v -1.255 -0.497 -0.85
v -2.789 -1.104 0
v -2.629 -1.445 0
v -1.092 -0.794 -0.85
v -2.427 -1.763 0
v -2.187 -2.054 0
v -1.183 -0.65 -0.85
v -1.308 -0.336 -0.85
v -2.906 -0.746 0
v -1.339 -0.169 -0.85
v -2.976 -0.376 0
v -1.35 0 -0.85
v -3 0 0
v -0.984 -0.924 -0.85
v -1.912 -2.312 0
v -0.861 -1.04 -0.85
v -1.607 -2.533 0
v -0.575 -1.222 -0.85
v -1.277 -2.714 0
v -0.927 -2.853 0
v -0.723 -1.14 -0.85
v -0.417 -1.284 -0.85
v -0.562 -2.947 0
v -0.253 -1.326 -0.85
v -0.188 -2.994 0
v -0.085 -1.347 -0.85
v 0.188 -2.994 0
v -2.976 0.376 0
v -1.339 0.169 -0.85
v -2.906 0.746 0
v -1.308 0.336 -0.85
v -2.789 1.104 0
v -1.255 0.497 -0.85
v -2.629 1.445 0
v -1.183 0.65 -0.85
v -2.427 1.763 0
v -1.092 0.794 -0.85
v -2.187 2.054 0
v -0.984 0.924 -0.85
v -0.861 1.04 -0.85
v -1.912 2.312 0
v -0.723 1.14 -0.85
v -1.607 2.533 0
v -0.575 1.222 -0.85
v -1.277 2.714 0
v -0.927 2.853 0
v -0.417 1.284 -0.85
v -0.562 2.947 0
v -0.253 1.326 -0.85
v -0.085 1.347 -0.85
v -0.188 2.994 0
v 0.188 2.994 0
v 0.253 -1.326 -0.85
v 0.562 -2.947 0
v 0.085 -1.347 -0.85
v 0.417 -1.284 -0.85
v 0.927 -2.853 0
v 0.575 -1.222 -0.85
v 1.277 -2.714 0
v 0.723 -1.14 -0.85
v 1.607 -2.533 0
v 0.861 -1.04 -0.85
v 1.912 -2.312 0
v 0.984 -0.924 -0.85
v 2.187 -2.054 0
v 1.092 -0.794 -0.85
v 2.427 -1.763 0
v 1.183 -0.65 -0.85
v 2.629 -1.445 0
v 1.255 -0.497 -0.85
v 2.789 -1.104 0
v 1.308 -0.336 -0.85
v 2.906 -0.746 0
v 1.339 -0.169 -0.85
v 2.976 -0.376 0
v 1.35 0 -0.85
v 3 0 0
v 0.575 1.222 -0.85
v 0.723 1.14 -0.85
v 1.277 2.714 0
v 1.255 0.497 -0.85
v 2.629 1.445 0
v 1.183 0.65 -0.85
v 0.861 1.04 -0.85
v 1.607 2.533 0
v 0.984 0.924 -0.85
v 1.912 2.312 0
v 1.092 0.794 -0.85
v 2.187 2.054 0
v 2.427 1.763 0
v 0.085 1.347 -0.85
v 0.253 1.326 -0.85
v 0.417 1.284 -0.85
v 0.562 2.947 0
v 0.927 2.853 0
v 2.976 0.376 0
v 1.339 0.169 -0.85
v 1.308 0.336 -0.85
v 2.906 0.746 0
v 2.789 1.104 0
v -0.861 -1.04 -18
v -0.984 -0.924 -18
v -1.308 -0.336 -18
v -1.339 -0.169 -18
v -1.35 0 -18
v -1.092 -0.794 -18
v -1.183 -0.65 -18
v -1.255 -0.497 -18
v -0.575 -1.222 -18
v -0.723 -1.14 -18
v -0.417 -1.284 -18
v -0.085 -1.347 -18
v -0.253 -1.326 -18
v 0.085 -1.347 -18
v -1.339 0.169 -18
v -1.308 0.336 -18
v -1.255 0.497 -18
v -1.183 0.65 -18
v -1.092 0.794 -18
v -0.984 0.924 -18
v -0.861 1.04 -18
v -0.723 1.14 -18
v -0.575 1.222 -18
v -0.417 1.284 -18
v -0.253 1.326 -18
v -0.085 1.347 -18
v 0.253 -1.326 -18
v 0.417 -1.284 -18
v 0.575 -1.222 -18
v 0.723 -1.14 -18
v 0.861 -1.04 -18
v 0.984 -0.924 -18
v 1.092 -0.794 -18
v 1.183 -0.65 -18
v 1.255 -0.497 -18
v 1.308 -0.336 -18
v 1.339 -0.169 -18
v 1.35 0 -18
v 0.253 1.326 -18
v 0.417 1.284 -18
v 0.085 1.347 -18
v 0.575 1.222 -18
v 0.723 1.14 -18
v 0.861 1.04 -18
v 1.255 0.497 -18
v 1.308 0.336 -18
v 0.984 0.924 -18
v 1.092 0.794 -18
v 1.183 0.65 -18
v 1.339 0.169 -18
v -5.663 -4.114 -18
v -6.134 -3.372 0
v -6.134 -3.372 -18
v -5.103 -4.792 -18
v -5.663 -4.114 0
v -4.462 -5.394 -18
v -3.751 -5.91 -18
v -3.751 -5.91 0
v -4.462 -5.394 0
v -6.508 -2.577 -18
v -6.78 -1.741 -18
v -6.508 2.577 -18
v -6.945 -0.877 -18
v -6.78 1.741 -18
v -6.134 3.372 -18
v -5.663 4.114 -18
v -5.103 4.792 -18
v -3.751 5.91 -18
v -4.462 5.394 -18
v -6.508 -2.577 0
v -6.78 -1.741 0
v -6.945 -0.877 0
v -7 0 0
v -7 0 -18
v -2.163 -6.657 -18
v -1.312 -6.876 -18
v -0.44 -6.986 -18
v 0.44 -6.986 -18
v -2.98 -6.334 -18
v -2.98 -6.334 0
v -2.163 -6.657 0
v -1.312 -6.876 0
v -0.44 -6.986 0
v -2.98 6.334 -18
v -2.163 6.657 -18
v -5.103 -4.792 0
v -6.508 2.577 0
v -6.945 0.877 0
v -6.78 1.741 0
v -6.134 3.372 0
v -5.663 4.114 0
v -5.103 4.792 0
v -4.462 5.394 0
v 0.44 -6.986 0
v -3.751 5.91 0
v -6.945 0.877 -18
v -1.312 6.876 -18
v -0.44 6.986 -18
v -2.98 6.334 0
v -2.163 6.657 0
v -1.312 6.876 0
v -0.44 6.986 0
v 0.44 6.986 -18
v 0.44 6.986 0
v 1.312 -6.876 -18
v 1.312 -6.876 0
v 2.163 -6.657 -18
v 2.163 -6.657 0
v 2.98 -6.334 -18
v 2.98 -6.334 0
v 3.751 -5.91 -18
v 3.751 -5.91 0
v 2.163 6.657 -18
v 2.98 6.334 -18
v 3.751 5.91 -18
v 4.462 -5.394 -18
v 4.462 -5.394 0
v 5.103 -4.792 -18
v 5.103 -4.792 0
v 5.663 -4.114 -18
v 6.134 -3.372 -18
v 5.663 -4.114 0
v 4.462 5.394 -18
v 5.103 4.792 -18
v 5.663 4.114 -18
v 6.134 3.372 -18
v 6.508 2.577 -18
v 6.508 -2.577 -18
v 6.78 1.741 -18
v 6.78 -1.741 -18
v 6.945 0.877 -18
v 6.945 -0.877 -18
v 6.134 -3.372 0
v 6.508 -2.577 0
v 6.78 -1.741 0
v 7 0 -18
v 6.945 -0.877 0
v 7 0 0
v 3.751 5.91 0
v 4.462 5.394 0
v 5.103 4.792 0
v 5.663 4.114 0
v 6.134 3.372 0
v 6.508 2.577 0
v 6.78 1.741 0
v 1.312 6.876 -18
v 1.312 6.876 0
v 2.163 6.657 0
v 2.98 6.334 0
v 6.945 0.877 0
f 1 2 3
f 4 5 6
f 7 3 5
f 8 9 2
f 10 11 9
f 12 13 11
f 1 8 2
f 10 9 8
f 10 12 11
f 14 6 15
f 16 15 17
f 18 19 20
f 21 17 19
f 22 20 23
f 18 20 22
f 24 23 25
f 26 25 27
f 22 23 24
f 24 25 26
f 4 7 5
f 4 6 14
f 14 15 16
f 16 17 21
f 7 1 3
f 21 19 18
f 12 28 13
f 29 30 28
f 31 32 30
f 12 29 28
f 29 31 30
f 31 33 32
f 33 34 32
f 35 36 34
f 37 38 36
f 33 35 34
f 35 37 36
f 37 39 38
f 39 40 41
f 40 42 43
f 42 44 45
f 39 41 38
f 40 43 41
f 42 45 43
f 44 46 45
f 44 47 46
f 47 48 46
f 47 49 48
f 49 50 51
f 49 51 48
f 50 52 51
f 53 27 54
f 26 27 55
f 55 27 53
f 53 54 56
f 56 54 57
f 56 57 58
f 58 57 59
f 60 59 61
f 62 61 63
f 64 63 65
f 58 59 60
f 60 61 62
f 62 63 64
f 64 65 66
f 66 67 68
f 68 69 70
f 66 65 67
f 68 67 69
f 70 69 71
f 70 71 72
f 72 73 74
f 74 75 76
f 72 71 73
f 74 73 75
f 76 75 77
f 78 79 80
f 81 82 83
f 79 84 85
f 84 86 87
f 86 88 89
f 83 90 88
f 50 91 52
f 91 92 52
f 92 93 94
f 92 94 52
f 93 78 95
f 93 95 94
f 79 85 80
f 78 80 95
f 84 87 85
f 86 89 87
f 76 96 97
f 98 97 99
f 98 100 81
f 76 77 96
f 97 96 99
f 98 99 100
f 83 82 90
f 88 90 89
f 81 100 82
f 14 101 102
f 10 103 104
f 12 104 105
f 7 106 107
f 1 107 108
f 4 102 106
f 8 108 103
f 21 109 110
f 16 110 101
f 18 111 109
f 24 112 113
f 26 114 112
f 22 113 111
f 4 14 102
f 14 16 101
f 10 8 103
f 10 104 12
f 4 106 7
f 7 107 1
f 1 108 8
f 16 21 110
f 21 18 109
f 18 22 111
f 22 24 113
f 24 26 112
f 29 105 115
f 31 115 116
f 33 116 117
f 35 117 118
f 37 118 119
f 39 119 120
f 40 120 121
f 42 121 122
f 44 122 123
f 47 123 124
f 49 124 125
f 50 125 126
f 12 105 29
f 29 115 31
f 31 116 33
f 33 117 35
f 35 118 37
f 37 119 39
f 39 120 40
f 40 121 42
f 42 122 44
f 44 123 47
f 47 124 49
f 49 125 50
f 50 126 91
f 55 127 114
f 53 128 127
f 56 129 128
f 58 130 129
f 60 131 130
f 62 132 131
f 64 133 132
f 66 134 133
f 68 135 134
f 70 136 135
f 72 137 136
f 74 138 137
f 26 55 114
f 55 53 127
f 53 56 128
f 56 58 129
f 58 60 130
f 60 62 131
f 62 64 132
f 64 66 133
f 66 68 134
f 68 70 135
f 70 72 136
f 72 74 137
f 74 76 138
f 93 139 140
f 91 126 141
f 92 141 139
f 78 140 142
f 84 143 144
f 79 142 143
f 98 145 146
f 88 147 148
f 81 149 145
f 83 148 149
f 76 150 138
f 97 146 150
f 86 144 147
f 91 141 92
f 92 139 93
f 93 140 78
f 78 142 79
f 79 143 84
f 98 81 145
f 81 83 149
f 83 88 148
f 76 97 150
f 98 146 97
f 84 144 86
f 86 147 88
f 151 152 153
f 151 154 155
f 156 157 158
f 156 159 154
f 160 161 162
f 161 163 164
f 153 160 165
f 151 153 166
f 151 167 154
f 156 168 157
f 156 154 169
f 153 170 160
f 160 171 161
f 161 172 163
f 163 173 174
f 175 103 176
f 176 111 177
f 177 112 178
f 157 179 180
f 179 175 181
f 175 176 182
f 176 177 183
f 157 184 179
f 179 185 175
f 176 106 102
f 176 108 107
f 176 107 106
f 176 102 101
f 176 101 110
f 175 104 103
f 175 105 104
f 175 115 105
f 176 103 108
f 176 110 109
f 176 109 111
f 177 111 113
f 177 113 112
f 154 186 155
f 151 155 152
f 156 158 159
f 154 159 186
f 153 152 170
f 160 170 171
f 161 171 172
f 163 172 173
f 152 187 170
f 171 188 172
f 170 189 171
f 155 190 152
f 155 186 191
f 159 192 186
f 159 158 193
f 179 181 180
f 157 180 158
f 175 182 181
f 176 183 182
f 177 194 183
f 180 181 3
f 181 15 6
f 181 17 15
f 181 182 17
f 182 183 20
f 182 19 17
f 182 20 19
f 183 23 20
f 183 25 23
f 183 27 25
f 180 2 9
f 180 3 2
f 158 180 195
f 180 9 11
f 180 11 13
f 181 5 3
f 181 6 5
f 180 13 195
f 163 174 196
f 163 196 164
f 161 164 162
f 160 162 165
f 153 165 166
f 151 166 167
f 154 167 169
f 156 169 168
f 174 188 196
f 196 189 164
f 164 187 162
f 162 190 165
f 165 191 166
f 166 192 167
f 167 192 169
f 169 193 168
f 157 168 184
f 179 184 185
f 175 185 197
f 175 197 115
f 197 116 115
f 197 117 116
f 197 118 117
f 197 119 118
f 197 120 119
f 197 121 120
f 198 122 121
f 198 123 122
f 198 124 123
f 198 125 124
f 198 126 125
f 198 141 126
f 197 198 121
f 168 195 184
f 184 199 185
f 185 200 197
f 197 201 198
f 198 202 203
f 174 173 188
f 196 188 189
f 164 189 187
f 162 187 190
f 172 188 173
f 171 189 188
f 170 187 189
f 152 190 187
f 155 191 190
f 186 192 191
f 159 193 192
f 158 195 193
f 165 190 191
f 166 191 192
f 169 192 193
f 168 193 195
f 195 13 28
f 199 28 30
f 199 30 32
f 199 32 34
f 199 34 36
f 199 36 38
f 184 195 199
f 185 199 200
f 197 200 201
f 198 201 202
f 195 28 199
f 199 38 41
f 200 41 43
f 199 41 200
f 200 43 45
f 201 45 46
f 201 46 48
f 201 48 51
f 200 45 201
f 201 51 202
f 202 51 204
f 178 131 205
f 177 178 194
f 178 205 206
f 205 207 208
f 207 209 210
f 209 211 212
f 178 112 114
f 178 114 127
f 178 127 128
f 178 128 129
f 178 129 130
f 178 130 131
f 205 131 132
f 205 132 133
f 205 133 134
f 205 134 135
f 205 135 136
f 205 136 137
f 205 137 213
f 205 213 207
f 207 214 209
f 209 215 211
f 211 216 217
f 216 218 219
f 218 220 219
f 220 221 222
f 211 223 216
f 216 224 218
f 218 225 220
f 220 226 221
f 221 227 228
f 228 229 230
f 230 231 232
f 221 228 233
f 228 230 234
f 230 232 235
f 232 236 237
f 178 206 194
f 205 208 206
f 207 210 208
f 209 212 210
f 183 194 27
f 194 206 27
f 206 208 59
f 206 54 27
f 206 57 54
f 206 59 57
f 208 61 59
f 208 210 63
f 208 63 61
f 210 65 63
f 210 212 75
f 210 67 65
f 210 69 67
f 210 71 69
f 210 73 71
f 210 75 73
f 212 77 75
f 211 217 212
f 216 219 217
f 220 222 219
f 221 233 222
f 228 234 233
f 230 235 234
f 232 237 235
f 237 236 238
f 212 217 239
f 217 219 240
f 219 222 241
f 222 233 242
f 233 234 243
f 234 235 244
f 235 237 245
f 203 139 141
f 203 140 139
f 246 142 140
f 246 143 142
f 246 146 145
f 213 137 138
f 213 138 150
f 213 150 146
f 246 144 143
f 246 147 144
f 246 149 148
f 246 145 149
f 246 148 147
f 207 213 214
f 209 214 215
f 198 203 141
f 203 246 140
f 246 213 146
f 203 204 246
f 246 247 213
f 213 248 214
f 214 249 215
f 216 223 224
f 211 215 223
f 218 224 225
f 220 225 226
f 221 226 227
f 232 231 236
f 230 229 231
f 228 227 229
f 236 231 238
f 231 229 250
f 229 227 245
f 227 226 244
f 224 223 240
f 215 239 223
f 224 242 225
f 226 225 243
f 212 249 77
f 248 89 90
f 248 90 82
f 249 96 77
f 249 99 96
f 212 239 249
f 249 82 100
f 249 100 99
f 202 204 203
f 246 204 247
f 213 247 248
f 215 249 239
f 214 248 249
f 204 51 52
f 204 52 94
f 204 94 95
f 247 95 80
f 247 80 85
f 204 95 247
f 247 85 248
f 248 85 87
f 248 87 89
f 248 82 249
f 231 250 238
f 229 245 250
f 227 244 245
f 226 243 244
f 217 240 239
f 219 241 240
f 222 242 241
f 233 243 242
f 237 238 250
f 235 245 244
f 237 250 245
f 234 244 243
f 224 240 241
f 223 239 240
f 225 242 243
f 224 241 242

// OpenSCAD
$fn = 50;

difference() {
	union() {
		translate(v = [0, 0, -18.0]) {
			cylinder(h = 18, r = 7.0);
		}
	}
	union() {
		translate(v = [0, 0, 0]) {
			rotate(a = [0, 0, 0]) {
				difference() {
					union() {
						translate(v = [0, 0, -21.0]) {
							cylinder(h = 21, r = 1.0);
						}
						translate(v = [0, 0, -0.85]) {
							cylinder(h = 0.85, r1 = 1.35, r2 = 3.0);
						}
						translate(v = [0, 0, -21.0]) {
							cylinder(h = 21, r = 1.35);
						}
						translate(v = [0, 0, -21.0]) {
							cylinder(h = 21, r = 1.0);
						}
					}
					union();
				}
			}
		}
	}
}
